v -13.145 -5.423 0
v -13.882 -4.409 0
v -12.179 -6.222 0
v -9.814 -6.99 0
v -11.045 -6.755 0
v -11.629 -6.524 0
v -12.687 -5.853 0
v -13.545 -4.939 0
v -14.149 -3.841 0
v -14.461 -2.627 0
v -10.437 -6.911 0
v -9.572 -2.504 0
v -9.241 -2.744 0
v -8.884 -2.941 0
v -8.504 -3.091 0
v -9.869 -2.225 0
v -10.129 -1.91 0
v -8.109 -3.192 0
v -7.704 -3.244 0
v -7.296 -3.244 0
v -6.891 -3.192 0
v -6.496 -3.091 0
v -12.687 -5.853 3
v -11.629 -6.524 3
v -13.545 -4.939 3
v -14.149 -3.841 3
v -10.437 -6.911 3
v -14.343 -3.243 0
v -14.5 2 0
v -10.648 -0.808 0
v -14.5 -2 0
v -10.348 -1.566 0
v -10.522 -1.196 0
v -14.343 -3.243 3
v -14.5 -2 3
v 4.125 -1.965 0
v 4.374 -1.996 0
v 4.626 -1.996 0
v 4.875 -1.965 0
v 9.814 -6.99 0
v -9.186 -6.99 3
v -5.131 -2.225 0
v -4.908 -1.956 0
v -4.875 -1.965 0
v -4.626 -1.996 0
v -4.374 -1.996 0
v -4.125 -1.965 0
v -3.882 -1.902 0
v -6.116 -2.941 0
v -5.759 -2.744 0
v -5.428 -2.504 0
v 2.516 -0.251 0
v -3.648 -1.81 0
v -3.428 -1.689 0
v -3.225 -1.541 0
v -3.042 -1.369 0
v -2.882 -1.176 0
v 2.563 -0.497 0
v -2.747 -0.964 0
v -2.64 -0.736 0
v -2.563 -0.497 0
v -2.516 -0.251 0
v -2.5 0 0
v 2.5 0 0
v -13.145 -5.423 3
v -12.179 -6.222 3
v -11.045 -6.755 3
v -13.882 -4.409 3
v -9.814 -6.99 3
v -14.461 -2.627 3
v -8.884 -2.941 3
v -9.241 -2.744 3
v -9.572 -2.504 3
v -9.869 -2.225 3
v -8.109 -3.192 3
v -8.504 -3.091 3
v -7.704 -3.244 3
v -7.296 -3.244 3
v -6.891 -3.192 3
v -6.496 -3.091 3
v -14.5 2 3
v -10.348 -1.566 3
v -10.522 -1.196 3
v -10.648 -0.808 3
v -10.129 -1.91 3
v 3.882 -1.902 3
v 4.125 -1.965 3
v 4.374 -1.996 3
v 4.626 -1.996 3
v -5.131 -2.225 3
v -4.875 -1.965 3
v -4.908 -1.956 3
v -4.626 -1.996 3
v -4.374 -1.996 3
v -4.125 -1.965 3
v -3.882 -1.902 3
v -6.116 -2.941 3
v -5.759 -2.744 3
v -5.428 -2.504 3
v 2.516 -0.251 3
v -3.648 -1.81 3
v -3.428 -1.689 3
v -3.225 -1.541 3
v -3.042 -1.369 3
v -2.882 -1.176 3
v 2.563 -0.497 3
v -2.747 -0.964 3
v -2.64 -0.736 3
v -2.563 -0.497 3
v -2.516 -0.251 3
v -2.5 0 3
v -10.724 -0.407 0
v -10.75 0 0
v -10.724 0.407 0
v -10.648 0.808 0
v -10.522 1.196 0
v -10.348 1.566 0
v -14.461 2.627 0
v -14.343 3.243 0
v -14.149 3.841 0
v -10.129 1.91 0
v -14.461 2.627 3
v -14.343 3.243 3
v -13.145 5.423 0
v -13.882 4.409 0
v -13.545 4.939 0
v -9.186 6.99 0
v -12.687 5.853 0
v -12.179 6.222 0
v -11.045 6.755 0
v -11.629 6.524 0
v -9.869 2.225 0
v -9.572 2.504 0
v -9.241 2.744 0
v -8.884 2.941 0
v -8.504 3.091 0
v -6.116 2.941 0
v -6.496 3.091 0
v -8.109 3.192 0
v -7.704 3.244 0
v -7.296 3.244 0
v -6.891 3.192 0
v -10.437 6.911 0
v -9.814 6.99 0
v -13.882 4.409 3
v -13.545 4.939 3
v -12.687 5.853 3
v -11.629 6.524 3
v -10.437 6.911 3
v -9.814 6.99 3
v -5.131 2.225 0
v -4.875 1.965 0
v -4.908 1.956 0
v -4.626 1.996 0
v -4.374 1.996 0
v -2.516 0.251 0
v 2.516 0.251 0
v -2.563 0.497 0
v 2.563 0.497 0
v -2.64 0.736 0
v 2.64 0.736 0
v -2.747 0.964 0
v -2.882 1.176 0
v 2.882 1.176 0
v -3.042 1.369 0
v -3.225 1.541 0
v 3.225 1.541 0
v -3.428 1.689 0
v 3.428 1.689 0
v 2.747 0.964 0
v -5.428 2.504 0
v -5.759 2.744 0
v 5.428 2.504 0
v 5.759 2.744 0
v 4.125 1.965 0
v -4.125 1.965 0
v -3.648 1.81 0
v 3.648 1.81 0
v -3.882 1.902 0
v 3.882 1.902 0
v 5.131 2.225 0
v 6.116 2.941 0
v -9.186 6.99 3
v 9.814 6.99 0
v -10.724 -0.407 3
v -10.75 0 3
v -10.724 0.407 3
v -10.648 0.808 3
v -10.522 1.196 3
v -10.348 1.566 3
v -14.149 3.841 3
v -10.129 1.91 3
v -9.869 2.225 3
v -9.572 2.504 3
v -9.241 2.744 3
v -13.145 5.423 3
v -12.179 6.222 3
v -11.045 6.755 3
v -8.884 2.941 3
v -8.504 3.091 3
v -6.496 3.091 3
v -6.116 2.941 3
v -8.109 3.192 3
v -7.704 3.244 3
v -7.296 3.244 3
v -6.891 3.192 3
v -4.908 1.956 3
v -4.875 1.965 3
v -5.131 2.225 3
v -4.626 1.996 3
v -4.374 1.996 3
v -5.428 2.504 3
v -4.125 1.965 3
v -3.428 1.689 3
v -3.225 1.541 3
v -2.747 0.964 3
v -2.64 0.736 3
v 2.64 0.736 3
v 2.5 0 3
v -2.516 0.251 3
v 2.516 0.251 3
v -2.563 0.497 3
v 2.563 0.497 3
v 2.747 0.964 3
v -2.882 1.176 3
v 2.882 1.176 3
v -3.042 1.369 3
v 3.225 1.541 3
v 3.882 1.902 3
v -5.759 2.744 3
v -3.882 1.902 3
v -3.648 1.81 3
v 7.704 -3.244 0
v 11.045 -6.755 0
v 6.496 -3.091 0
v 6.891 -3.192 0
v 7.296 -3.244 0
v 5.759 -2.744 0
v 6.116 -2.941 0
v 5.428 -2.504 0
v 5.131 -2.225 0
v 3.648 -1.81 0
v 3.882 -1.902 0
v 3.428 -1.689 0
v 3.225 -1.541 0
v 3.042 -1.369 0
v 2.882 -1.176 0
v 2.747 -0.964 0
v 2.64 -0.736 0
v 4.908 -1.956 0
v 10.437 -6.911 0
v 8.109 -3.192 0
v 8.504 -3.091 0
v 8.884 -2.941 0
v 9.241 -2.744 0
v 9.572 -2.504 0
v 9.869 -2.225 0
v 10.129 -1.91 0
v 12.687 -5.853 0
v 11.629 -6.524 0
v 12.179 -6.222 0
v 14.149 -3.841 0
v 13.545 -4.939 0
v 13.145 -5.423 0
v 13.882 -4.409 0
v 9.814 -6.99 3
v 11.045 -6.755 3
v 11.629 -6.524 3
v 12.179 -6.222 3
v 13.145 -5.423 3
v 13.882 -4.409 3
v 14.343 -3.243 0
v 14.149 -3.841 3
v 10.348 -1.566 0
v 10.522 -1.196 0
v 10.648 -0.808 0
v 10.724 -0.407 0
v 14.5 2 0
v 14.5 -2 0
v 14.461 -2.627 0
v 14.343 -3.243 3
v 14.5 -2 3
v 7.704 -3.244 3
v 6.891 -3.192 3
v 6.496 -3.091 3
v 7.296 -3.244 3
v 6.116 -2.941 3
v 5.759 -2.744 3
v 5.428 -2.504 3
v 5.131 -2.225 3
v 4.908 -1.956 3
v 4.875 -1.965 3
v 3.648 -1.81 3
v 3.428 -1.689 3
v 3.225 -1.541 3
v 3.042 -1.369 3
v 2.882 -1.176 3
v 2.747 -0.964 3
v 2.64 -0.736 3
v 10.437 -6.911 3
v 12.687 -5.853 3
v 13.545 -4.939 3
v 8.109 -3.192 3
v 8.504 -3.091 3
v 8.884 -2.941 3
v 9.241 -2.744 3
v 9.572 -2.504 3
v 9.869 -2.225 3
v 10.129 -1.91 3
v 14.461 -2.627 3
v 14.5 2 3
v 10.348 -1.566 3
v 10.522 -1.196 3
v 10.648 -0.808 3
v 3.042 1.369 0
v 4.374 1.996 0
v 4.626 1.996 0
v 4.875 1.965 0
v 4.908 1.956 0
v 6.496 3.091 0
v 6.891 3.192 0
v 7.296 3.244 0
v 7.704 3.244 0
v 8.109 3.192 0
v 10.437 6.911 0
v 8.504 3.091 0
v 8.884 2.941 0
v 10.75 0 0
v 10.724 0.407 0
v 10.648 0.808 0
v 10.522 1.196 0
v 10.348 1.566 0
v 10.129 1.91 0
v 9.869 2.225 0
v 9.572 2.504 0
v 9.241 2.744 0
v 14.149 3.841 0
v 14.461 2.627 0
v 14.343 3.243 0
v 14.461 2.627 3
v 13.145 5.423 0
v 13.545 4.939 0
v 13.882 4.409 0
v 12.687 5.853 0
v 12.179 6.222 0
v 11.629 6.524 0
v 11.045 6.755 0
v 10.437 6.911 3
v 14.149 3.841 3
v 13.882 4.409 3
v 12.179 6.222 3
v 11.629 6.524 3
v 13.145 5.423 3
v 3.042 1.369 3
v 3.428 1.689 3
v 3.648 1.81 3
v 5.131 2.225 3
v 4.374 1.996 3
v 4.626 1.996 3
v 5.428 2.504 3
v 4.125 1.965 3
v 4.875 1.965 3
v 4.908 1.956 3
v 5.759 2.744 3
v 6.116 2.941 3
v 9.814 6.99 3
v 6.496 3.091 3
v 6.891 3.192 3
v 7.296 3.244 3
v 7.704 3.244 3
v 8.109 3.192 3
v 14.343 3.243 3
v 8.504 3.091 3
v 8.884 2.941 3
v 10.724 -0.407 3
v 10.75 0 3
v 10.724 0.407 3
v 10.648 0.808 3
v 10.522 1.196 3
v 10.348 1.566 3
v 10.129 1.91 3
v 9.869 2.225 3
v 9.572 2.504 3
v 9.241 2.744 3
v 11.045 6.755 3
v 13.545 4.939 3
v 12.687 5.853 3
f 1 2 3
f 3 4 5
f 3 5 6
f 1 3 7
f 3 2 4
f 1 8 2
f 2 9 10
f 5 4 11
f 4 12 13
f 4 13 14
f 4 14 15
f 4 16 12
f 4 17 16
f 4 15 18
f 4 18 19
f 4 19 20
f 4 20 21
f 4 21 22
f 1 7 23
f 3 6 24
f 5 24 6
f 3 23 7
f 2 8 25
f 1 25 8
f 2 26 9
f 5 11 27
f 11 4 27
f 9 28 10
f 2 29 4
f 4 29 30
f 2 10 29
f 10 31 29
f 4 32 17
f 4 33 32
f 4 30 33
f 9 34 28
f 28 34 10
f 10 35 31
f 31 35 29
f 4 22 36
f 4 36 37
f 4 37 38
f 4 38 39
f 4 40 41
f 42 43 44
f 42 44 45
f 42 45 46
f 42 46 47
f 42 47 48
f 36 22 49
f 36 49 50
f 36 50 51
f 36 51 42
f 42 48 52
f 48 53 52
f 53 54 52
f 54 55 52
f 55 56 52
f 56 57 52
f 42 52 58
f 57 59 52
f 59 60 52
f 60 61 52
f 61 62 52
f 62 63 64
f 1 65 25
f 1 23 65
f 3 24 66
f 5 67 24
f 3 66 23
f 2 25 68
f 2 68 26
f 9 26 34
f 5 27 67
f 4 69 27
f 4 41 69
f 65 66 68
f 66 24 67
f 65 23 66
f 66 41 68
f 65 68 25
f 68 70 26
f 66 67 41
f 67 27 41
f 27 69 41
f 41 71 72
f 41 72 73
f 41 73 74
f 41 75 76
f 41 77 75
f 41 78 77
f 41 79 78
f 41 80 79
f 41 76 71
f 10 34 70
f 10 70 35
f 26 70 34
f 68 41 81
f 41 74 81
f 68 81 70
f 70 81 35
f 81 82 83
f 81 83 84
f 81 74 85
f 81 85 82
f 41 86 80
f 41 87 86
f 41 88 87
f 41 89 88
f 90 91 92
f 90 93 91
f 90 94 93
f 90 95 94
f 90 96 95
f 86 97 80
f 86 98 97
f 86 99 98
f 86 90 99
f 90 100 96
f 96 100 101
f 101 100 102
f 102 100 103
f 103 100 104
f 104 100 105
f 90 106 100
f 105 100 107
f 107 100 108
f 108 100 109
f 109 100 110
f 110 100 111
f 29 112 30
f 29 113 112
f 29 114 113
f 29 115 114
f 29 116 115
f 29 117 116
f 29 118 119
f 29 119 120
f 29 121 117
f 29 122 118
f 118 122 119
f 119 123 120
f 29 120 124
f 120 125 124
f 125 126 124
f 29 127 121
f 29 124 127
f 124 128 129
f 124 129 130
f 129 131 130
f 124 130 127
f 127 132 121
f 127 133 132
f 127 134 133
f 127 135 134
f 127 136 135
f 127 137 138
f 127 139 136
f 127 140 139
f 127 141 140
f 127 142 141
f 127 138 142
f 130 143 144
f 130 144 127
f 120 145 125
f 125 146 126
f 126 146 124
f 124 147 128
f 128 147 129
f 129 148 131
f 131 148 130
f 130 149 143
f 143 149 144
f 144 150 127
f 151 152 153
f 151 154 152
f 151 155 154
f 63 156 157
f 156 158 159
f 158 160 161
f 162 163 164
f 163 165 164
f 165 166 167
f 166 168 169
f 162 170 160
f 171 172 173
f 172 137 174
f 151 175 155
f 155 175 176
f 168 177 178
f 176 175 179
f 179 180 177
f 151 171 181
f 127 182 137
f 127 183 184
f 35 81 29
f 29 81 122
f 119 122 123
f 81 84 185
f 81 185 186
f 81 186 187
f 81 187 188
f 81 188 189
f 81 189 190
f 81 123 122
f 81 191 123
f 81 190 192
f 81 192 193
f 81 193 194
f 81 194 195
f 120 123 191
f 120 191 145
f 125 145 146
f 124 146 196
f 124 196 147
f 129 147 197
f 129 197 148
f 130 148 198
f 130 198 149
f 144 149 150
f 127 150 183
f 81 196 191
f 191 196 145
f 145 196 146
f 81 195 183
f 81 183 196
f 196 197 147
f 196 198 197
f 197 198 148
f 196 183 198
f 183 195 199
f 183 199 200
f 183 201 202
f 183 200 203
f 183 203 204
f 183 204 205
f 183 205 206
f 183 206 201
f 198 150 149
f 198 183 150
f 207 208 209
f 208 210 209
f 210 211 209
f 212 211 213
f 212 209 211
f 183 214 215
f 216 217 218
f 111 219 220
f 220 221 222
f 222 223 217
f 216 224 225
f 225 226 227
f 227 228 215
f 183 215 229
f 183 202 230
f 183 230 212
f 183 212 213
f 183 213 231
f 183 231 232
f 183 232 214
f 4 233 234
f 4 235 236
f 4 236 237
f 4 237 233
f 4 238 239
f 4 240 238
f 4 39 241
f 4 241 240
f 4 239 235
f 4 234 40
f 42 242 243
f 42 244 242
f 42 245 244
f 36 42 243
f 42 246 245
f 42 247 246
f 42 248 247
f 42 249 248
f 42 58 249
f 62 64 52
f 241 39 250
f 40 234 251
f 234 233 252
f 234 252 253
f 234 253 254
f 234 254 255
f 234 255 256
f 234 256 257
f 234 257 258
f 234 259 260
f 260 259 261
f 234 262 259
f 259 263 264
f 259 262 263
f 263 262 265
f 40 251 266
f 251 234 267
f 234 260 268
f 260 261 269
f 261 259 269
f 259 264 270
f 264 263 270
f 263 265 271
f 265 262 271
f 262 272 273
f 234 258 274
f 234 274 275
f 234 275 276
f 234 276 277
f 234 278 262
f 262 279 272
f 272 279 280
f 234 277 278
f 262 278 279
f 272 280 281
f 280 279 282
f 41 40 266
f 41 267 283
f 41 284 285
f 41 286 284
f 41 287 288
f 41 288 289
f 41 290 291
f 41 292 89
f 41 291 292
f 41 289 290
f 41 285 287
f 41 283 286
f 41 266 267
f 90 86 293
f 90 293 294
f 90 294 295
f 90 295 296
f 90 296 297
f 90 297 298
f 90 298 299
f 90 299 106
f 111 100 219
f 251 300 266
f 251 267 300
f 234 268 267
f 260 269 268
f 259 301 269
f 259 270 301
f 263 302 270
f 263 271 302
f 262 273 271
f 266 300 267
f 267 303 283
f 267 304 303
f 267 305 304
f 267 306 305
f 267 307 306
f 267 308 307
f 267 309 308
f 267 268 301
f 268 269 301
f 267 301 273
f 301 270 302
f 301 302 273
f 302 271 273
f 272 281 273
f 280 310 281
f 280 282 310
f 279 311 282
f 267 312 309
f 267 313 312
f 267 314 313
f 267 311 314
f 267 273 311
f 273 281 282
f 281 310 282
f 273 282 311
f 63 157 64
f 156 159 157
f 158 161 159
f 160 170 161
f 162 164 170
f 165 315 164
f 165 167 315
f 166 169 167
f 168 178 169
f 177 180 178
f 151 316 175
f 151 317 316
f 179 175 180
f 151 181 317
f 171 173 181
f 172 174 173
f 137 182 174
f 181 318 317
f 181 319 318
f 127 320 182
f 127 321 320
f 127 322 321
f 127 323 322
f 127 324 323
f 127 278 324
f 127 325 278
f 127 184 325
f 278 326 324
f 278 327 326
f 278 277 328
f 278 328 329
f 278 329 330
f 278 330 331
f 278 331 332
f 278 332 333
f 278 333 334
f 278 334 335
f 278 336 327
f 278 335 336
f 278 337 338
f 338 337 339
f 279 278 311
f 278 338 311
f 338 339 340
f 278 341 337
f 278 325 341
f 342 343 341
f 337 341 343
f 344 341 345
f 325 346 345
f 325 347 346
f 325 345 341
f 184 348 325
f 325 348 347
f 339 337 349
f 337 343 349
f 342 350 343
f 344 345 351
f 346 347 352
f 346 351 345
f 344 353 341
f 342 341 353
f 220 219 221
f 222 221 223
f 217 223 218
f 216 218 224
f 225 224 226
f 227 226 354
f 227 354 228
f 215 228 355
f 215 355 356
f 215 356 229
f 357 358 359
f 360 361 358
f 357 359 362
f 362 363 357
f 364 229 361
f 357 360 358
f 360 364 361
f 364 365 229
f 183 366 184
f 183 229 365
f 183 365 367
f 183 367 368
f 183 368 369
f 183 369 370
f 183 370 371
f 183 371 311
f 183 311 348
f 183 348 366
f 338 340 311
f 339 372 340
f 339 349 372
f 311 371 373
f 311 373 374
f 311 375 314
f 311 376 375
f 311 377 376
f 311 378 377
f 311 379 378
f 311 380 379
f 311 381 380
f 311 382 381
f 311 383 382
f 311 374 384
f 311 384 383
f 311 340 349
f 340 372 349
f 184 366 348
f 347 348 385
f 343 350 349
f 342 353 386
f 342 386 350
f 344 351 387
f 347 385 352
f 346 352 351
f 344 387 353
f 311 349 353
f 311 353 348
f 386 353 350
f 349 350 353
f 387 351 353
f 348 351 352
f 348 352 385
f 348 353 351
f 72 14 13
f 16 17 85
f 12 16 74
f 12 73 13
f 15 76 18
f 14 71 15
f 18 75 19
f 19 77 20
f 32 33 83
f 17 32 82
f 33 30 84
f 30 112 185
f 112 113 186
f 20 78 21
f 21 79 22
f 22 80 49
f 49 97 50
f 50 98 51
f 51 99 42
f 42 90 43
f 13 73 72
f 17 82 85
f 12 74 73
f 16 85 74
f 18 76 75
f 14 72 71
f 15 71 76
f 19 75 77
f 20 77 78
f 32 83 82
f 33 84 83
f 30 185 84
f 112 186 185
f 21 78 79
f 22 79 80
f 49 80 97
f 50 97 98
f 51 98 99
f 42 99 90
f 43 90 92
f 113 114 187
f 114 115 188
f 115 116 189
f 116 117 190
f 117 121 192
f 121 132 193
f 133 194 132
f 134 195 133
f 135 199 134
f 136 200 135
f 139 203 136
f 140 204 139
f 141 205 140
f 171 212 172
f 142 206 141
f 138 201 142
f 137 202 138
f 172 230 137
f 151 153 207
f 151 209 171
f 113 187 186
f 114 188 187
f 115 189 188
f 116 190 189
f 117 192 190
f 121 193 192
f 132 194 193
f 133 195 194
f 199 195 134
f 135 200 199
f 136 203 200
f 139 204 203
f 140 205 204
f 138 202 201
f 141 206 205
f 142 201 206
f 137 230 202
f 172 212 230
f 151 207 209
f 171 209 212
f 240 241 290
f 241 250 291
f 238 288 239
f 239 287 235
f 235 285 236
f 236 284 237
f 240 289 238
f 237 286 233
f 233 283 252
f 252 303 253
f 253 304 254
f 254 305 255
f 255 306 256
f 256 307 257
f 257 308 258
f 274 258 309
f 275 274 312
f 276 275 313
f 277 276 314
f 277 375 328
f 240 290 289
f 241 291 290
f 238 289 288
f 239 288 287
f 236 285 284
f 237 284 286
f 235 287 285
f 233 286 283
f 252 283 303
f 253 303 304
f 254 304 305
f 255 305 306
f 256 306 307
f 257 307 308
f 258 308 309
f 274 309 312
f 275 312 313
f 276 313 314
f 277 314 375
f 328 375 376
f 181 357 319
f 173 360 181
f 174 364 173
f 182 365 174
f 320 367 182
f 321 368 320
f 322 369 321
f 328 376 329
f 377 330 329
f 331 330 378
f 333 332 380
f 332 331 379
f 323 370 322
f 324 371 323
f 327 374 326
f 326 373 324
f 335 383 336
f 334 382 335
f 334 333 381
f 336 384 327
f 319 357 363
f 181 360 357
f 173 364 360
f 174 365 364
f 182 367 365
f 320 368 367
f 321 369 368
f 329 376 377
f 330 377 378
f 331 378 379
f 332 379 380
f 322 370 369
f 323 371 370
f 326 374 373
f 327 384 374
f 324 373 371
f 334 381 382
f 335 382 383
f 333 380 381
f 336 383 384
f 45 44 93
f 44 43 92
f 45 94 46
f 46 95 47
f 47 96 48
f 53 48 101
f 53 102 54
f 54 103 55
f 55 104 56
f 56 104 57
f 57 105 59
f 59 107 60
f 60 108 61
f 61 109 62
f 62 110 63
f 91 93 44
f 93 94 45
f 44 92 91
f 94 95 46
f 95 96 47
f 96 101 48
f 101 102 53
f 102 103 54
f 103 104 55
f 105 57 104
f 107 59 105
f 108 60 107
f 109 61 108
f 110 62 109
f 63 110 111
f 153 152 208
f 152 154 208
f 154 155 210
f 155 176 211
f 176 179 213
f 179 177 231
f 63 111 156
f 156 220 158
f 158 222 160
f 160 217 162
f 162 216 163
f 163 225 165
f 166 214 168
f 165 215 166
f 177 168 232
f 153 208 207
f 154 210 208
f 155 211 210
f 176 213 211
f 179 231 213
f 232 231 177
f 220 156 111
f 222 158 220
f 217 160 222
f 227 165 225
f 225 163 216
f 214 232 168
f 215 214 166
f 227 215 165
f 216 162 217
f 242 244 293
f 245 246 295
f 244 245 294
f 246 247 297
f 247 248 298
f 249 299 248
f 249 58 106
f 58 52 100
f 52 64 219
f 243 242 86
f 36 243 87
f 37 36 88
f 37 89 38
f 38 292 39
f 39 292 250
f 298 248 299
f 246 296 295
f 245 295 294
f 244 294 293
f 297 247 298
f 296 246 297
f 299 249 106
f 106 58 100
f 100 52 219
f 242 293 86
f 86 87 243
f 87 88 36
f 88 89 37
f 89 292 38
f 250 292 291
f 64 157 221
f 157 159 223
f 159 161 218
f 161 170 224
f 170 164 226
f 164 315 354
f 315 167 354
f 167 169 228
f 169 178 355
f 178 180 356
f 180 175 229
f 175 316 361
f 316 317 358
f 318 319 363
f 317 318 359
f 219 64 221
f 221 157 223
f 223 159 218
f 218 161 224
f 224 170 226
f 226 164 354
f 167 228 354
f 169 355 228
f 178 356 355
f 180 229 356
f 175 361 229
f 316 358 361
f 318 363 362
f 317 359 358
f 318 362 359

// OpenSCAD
$fn = 50;

difference() {
	union() {
		hull() {
			translate(v = [-9.5, 2.0, 0]) {
				cylinder(h = 3, r = 5);
			}
			translate(v = [9.5, 2.0, 0]) {
				cylinder(h = 3, r = 5);
			}
			translate(v = [-9.5, -2.0, 0]) {
				cylinder(h = 3, r = 5);
			}
			translate(v = [9.5, -2.0, 0]) {
				cylinder(h = 3, r = 5);
			}
		}
	}
	union() {
		translate(v = [-7.5, 0.0, -100.0]) {
			cylinder(h = 200, r = 3.25);
		}
		translate(v = [7.5, 0.0, -100.0]) {
			cylinder(h = 200, r = 3.25);
		}
		translate(v = [-7.5, 0.0, -100.0]) {
			cylinder(h = 200, r = 1.8);
		}
		translate(v = [7.5, 0.0, -100.0]) {
			cylinder(h = 200, r = 1.8);
		}
		translate(v = [-4.5, 0, 0.0]) {
			cylinder(h = 3, r = 2.0);
		}
		translate(v = [4.5, 0, 0.0]) {
			cylinder(h = 3, r = 2.0);
		}
	}
}
